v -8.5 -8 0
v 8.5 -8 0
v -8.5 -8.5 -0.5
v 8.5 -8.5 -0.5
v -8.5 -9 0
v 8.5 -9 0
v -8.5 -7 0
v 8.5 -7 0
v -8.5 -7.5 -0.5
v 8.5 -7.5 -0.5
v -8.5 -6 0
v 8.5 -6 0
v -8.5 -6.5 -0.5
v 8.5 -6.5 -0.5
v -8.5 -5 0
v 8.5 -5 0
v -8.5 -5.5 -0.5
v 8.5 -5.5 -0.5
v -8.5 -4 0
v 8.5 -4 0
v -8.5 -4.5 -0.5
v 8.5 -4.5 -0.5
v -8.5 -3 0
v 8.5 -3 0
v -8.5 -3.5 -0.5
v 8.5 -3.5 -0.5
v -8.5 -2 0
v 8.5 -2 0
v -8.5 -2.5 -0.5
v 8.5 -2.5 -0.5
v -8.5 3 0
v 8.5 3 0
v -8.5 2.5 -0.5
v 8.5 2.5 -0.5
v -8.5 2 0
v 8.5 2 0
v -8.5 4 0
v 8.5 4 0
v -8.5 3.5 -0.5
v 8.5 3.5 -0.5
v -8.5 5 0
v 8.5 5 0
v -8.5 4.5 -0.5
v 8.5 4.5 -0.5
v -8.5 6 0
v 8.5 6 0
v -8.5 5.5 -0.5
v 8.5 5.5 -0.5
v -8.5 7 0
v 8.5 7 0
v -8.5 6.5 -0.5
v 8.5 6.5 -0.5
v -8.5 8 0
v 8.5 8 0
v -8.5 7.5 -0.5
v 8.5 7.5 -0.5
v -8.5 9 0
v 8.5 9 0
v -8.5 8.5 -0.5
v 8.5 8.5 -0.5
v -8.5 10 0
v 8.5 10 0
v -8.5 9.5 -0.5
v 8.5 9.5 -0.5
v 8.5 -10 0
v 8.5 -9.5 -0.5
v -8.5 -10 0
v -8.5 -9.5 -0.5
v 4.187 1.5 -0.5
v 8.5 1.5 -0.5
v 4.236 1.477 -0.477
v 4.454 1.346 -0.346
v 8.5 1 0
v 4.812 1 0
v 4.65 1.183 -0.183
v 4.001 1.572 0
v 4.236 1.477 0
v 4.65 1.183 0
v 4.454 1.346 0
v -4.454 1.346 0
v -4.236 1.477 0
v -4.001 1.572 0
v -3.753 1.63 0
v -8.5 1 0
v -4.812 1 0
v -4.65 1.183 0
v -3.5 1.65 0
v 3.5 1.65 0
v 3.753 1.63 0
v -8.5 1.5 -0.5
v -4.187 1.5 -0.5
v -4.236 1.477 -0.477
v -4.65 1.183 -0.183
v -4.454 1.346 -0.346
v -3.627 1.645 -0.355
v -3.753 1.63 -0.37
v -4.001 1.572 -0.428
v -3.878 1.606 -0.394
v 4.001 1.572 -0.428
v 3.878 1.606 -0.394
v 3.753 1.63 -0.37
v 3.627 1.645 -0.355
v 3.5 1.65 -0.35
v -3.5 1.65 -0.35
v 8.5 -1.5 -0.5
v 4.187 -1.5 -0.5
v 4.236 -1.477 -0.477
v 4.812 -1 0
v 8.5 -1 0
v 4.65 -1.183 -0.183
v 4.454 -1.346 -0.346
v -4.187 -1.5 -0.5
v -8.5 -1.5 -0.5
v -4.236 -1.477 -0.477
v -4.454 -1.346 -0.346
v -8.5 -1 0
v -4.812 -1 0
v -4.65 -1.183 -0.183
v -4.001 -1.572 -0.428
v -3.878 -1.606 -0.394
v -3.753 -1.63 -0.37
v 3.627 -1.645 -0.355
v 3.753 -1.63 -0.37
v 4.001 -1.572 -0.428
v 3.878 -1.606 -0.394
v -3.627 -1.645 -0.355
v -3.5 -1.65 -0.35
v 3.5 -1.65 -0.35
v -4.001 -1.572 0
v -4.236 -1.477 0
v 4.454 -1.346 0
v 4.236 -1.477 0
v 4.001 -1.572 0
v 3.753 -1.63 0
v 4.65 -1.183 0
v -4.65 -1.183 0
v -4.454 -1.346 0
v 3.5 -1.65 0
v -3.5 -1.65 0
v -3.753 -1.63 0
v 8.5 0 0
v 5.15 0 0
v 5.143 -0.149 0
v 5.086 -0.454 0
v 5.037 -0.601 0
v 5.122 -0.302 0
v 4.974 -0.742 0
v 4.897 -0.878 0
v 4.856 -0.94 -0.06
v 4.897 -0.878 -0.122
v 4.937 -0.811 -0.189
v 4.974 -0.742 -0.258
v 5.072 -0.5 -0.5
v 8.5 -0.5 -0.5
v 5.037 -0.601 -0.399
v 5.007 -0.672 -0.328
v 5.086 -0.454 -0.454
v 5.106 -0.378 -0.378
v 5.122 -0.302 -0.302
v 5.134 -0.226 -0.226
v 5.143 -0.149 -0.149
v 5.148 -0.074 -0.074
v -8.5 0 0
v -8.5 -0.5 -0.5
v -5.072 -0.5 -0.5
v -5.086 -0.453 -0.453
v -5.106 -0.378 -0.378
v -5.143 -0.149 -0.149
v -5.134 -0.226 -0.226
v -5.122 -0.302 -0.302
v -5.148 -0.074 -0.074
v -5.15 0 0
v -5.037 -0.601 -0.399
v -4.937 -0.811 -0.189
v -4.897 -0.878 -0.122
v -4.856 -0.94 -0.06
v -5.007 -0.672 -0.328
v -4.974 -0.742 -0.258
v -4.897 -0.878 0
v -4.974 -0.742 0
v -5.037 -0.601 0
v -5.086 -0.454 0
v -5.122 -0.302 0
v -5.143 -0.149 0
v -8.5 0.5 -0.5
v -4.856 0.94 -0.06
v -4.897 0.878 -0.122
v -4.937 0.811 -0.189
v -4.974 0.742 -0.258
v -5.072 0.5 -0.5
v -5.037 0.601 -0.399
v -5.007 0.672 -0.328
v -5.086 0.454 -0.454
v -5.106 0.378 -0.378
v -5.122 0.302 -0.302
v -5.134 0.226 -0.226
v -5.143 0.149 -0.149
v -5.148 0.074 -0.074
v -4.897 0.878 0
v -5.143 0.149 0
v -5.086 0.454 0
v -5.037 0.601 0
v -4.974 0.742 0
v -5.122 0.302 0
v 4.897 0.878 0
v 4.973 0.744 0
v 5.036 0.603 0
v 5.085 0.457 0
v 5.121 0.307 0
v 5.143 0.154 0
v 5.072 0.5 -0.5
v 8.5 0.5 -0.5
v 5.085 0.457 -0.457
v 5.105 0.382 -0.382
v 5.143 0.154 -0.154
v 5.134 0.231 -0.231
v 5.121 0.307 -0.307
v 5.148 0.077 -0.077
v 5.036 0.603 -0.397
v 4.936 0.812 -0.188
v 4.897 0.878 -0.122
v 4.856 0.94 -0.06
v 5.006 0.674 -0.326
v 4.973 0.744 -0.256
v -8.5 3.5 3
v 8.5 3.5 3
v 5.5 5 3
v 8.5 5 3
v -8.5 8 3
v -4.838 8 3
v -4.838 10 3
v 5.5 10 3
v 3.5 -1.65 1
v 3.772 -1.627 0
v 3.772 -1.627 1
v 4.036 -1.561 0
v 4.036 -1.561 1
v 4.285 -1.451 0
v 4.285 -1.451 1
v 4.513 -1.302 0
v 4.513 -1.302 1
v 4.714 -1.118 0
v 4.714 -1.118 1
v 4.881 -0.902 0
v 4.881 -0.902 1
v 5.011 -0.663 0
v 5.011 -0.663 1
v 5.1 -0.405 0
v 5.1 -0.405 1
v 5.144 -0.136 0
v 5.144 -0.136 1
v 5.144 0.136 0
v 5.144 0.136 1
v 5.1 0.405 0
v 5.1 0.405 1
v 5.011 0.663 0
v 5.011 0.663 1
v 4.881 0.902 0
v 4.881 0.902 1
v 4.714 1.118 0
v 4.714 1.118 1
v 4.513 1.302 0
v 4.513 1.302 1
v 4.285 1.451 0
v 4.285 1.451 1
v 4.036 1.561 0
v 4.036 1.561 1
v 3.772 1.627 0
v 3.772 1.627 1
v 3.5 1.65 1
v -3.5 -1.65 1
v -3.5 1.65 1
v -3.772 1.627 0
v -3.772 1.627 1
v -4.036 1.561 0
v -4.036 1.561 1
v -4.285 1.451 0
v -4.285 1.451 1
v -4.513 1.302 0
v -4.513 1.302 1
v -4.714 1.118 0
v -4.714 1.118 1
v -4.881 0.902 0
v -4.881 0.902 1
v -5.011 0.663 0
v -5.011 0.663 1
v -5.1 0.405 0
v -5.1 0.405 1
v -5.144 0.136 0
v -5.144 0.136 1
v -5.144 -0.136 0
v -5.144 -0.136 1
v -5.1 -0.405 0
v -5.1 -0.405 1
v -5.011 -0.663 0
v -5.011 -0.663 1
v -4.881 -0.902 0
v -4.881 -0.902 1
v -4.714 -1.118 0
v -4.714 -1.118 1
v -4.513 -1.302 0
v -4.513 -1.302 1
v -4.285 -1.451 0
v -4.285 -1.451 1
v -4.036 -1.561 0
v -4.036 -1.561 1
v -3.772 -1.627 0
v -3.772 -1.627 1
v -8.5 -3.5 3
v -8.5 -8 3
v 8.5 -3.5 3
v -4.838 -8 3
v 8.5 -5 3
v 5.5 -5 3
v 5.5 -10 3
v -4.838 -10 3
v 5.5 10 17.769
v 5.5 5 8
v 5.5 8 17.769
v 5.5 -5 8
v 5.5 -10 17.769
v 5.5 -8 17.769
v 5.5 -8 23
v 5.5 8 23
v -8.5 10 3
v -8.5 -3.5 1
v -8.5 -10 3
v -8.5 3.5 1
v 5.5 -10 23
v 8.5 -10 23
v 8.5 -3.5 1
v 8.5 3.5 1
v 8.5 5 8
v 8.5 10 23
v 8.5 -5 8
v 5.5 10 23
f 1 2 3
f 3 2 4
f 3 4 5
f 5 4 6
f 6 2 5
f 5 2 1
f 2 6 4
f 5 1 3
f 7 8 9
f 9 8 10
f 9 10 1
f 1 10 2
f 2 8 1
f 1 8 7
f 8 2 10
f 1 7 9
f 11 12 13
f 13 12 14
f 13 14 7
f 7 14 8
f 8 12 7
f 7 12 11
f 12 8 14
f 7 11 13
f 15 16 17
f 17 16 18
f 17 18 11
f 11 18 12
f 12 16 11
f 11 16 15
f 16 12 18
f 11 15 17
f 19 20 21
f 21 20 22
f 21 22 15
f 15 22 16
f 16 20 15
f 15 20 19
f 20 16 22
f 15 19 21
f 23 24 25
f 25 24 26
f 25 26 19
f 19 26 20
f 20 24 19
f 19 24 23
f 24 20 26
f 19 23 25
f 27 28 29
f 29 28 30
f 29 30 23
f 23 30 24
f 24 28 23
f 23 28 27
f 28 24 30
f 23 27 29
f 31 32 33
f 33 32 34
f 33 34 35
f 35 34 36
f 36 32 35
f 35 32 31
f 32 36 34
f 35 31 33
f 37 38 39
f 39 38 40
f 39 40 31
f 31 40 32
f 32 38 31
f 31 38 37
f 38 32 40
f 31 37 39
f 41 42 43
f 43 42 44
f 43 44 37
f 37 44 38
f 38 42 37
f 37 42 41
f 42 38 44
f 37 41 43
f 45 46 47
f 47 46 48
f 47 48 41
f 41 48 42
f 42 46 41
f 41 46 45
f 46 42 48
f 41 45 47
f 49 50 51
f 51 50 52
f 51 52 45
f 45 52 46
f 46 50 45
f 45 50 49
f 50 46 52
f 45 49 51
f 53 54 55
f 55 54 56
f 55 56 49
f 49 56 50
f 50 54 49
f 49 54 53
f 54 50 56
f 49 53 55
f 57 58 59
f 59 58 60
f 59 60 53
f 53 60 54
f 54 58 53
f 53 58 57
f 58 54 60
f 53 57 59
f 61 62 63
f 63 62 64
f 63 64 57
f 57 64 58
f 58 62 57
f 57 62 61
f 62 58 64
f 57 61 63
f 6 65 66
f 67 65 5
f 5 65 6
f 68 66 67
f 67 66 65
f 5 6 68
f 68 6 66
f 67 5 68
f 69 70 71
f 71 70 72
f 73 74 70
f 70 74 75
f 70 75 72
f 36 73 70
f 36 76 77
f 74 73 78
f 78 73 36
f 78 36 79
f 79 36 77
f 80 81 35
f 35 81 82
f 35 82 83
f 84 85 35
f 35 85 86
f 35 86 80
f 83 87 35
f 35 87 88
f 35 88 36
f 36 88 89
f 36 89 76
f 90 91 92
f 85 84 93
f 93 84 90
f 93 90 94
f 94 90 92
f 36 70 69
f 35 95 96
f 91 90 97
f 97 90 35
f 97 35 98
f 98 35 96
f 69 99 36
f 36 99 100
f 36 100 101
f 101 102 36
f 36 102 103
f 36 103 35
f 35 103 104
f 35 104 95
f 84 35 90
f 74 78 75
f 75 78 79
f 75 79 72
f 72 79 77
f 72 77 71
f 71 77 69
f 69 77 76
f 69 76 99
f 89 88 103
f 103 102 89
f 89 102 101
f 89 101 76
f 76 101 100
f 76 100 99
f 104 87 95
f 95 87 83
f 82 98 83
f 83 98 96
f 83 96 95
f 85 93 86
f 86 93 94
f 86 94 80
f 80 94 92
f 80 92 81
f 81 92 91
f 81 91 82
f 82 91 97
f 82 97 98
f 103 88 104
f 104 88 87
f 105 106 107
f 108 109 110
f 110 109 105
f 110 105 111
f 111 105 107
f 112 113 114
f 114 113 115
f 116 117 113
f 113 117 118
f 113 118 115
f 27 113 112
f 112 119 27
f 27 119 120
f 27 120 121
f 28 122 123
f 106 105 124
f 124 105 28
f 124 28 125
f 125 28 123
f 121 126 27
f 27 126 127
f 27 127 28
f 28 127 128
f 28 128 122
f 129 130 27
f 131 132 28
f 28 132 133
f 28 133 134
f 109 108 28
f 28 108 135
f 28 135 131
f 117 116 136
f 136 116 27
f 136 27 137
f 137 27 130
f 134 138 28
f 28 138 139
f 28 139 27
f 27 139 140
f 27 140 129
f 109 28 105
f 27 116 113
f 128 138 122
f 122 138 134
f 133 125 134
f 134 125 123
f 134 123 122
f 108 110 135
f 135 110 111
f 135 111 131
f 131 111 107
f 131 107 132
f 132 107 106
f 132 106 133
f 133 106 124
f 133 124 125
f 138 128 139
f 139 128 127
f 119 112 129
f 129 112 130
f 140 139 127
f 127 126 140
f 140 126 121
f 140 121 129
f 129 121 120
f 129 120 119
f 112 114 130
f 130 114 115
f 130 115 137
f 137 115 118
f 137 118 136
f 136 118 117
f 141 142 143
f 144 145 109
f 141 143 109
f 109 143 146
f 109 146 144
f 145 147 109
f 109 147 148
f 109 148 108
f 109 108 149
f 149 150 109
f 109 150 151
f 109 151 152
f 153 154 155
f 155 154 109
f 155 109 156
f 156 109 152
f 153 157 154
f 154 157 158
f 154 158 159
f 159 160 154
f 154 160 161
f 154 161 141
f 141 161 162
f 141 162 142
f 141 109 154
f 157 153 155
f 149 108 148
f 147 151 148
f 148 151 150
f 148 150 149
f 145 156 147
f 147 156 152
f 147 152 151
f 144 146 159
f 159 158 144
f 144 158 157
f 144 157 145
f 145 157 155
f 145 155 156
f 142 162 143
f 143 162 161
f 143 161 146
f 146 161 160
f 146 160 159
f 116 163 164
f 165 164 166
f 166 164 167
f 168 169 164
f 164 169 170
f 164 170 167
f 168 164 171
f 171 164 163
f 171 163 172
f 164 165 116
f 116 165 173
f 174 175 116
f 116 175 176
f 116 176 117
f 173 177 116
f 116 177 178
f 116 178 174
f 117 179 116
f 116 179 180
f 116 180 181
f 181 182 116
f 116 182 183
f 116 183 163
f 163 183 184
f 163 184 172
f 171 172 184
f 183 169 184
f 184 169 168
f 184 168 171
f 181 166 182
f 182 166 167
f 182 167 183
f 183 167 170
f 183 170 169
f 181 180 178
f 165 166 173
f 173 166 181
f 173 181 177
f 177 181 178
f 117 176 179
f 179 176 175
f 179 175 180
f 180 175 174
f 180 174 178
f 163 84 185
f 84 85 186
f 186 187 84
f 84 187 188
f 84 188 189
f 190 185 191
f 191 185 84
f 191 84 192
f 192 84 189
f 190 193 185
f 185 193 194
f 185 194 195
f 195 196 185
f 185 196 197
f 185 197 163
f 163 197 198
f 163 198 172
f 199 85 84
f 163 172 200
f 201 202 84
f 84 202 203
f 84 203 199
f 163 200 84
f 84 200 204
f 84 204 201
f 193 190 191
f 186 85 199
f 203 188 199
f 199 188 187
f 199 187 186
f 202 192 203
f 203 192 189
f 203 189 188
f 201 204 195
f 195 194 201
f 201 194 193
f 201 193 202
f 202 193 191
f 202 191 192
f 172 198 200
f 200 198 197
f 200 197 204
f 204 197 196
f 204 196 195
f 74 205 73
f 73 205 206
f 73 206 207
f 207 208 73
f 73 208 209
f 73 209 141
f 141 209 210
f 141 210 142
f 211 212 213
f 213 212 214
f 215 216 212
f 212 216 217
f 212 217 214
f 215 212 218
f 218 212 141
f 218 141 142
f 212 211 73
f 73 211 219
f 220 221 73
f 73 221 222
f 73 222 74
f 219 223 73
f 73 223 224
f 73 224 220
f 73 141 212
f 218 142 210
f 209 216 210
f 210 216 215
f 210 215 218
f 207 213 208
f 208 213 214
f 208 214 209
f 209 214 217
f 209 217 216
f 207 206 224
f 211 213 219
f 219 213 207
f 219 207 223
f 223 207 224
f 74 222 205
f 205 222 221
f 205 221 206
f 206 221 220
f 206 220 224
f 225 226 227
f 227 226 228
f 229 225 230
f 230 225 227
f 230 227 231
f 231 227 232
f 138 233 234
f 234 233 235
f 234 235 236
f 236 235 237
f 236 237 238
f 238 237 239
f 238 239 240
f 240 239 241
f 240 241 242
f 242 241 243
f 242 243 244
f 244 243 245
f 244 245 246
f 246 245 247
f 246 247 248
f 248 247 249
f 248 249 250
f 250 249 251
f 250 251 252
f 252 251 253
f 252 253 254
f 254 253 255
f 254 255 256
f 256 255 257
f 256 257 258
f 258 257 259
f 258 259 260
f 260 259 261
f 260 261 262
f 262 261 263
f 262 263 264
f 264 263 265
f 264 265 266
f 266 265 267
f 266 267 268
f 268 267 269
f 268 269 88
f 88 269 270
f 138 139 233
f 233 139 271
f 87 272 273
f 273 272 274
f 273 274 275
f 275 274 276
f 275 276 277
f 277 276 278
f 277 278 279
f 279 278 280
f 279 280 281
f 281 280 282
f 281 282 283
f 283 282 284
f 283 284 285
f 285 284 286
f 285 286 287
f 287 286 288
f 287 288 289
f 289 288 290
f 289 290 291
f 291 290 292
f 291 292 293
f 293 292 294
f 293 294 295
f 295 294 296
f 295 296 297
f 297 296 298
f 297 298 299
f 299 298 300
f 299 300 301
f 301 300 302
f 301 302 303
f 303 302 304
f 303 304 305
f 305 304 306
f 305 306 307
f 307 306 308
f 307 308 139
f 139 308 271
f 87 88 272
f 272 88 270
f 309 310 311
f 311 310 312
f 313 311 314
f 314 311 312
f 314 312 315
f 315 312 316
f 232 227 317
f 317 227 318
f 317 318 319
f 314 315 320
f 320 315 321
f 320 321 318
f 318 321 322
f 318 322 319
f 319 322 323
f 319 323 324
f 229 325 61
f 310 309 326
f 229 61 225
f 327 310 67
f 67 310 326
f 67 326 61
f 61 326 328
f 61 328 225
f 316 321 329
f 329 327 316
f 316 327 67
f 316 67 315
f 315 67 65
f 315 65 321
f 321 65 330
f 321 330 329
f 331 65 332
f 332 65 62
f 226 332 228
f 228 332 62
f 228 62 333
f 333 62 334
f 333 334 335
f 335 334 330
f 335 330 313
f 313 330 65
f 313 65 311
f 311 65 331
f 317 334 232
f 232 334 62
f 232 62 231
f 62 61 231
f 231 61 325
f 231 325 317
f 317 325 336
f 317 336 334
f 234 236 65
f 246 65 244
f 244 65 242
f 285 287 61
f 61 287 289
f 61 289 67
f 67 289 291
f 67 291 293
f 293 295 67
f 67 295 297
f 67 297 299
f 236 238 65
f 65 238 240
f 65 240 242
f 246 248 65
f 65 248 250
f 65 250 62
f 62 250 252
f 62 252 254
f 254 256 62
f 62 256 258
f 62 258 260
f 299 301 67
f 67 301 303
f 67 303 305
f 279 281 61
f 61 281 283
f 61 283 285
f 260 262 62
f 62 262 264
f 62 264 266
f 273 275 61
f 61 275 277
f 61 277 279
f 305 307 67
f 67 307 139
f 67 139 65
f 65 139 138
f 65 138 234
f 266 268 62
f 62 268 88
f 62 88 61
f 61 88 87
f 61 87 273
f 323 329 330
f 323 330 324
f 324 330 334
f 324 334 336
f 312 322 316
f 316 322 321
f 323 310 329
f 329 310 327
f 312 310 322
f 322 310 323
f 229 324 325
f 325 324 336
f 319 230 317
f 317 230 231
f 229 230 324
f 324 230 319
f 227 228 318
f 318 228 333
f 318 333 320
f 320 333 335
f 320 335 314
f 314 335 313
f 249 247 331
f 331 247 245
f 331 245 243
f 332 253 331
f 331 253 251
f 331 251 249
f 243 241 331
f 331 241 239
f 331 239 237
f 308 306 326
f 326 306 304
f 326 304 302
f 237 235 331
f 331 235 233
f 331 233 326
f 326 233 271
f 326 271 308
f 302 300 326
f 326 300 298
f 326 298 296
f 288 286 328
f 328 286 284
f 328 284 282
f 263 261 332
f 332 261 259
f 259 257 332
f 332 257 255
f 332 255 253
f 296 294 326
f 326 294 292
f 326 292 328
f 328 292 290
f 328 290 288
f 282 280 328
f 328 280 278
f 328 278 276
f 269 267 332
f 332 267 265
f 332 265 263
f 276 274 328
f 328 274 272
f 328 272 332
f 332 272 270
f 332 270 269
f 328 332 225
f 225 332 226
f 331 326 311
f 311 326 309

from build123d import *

# Parameters (mm, degrees)
SKETCH1_W              = 17
SKETCH1_H              = 20
BOSS_EXTRUDE1_DEPTH    = 3
SKETCH2_W              = 3
SKETCH2_H              = 20
BOSS_EXTRUDE2_DEPTH    = 20
BOSS_EXTRUDE3_DEPTH    = 2
BOSS_EXTRUDE4_START    = -20
BOSS_EXTRUDE4_DEPTH    = 2
SKETCH4_W              = 5
SKETCH4_H              = 10
CUT_EXTRUDE1_DEPTH     = 12
BOSS_EXTRUDE9_DEPTH    = 17
BOSS_EXTRUDE9_2_DEPTH  = 17
BOSS_EXTRUDE9_3_DEPTH  = 17
BOSS_EXTRUDE9_4_DEPTH  = 17
BOSS_EXTRUDE9_5_DEPTH  = 17
BOSS_EXTRUDE9_6_DEPTH  = 17
BOSS_EXTRUDE9_7_DEPTH  = 17
BOSS_EXTRUDE9_8_DEPTH  = 17
BOSS_EXTRUDE9_9_DEPTH  = 17
BOSS_EXTRUDE9_10_DEPTH = 17
BOSS_EXTRUDE9_11_DEPTH = 17
BOSS_EXTRUDE9_12_DEPTH = 17
BOSS_EXTRUDE9_13_DEPTH = 17
BOSS_EXTRUDE9_14_DEPTH = 17
BOSS_EXTRUDE9_15_DEPTH = 17
BOSS_EXTRUDE9_16_DEPTH = 17
BOSS_EXTRUDE9_17_DEPTH = 17
BOSS_EXTRUDE9_18_DEPTH = 17
BOSS_EXTRUDE9_19_DEPTH = 17
BOSS_EXTRUDE9_20_DEPTH = 17
CUT_EXTRUDE2_DEPTH     = 10
SKETCH8_W              = 17
SKETCH8_H              = 7
CUT_EXTRUDE3_DEPTH     = 2


with BuildPart() as part:
    # Sketch1 → Boss-Extrude1 (new body)
    with BuildSketch(Plane.XY):
        Rectangle(SKETCH1_W, SKETCH1_H)
    extrude(amount=BOSS_EXTRUDE1_DEPTH)

    # Sketch2 → Boss-Extrude2 (add)
    with BuildSketch(Plane.XY.offset(3)):
        with Locations((7, 0)):
            Rectangle(SKETCH2_W, SKETCH2_H)
    extrude(amount=BOSS_EXTRUDE2_DEPTH)

    # Sketch3 → Boss-Extrude3 (add)
    with BuildSketch(Plane.XZ.offset(10)):
        Polygon((5.5, 23), (-8.5, 3), (-4.838033315, 3), (5.5, 17.768619022), align=None)
    extrude(amount=-BOSS_EXTRUDE3_DEPTH)

    # Sketch3<2> → Boss-Extrude4 (add)
    with BuildSketch(Plane.XZ.offset(10).offset(BOSS_EXTRUDE4_START)):
        Polygon((5.5, 23), (-8.5, 3), (-4.838033315, 3), (5.5, 17.768619022), align=None)
    extrude(amount=BOSS_EXTRUDE4_DEPTH)

    # Sketch4 → Cut-Extrude1 (cut)
    with BuildSketch(Plane.ZY.offset(-5.5)):
        with Locations((5.5, 0)):
            Rectangle(SKETCH4_W, SKETCH4_H)
    extrude(amount=-CUT_EXTRUDE1_DEPTH, mode=Mode.SUBTRACT)


with BuildPart() as body_2:
    # Sketch5 → Boss-Extrude9 (new body)
    with BuildSketch(Plane(origin=(8.5, 0, 0), x_dir=(0, 0, -1), z_dir=(1, 0, 0))):
        Polygon((0.5, -9.5), (0, -9), (0, -10), align=None)
    extrude(amount=-BOSS_EXTRUDE9_DEPTH)


with BuildPart() as body_3:
    # Sketch5 → Boss-Extrude9 2 (new body)
    with BuildSketch(Plane(origin=(8.5, 0, 0), x_dir=(0, 0, -1), z_dir=(1, 0, 0))):
        Polygon((0.5, -0.5), (0, 0), (0, -1), align=None)
    extrude(amount=-BOSS_EXTRUDE9_2_DEPTH)


with BuildPart() as body_4:
    # Sketch5 → Boss-Extrude9 3 (new body)
    with BuildSketch(Plane(origin=(8.5, 0, 0), x_dir=(0, 0, -1), z_dir=(1, 0, 0))):
        Polygon((0.5, 0.5), (0, 1), (0, 0), align=None)
    extrude(amount=-BOSS_EXTRUDE9_3_DEPTH)


with BuildPart() as body_5:
    # Sketch5 → Boss-Extrude9 4 (new body)
    with BuildSketch(Plane(origin=(8.5, 0, 0), x_dir=(0, 0, -1), z_dir=(1, 0, 0))):
        Polygon((0.5, 1.5), (0, 2), (0, 1), align=None)
    extrude(amount=-BOSS_EXTRUDE9_4_DEPTH)


with BuildPart() as body_6:
    # Sketch5 → Boss-Extrude9 5 (new body)
    with BuildSketch(Plane(origin=(8.5, 0, 0), x_dir=(0, 0, -1), z_dir=(1, 0, 0))):
        Polygon((0, -8), (0, -9), (0.5, -8.5), align=None)
    extrude(amount=-BOSS_EXTRUDE9_5_DEPTH)


with BuildPart() as body_7:
    # Sketch5 → Boss-Extrude9 6 (new body)
    with BuildSketch(Plane(origin=(8.5, 0, 0), x_dir=(0, 0, -1), z_dir=(1, 0, 0))):
        Polygon((0, -7), (0, -8), (0.5, -7.5), align=None)
    extrude(amount=-BOSS_EXTRUDE9_6_DEPTH)


with BuildPart() as body_8:
    # Sketch5 → Boss-Extrude9 7 (new body)
    with BuildSketch(Plane(origin=(8.5, 0, 0), x_dir=(0, 0, -1), z_dir=(1, 0, 0))):
        Polygon((0, -6), (0, -7), (0.5, -6.5), align=None)
    extrude(amount=-BOSS_EXTRUDE9_7_DEPTH)


with BuildPart() as body_9:
    # Sketch5 → Boss-Extrude9 8 (new body)
    with BuildSketch(Plane(origin=(8.5, 0, 0), x_dir=(0, 0, -1), z_dir=(1, 0, 0))):
        Polygon((0, -5), (0, -6), (0.5, -5.5), align=None)
    extrude(amount=-BOSS_EXTRUDE9_8_DEPTH)


with BuildPart() as body_10:
    # Sketch5 → Boss-Extrude9 9 (new body)
    with BuildSketch(Plane(origin=(8.5, 0, 0), x_dir=(0, 0, -1), z_dir=(1, 0, 0))):
        Polygon((0, -4), (0, -5), (0.5, -4.5), align=None)
    extrude(amount=-BOSS_EXTRUDE9_9_DEPTH)


with BuildPart() as body_11:
    # Sketch5 → Boss-Extrude9 10 (new body)
    with BuildSketch(Plane(origin=(8.5, 0, 0), x_dir=(0, 0, -1), z_dir=(1, 0, 0))):
        Polygon((0, -3), (0, -4), (0.5, -3.5), align=None)
    extrude(amount=-BOSS_EXTRUDE9_10_DEPTH)


with BuildPart() as body_12:
    # Sketch5 → Boss-Extrude9 11 (new body)
    with BuildSketch(Plane(origin=(8.5, 0, 0), x_dir=(0, 0, -1), z_dir=(1, 0, 0))):
        Polygon((0, -2), (0, -3), (0.5, -2.5), align=None)
    extrude(amount=-BOSS_EXTRUDE9_11_DEPTH)


with BuildPart() as body_13:
    # Sketch5 → Boss-Extrude9 12 (new body)
    with BuildSketch(Plane(origin=(8.5, 0, 0), x_dir=(0, 0, -1), z_dir=(1, 0, 0))):
        Polygon((0, -1), (0, -2), (0.5, -1.5), align=None)
    extrude(amount=-BOSS_EXTRUDE9_12_DEPTH)


with BuildPart() as body_14:
    # Sketch5 → Boss-Extrude9 13 (new body)
    with BuildSketch(Plane(origin=(8.5, 0, 0), x_dir=(0, 0, -1), z_dir=(1, 0, 0))):
        Polygon((0, 3), (0, 2), (0.5, 2.5), align=None)
    extrude(amount=-BOSS_EXTRUDE9_13_DEPTH)


with BuildPart() as body_15:
    # Sketch5 → Boss-Extrude9 14 (new body)
    with BuildSketch(Plane(origin=(8.5, 0, 0), x_dir=(0, 0, -1), z_dir=(1, 0, 0))):
        Polygon((0, 4), (0, 3), (0.5, 3.5), align=None)
    extrude(amount=-BOSS_EXTRUDE9_14_DEPTH)


with BuildPart() as body_16:
    # Sketch5 → Boss-Extrude9 15 (new body)
    with BuildSketch(Plane(origin=(8.5, 0, 0), x_dir=(0, 0, -1), z_dir=(1, 0, 0))):
        Polygon((0, 5), (0, 4), (0.5, 4.5), align=None)
    extrude(amount=-BOSS_EXTRUDE9_15_DEPTH)


with BuildPart() as body_17:
    # Sketch5 → Boss-Extrude9 16 (new body)
    with BuildSketch(Plane(origin=(8.5, 0, 0), x_dir=(0, 0, -1), z_dir=(1, 0, 0))):
        Polygon((0, 6), (0, 5), (0.5, 5.5), align=None)
    extrude(amount=-BOSS_EXTRUDE9_16_DEPTH)


with BuildPart() as body_18:
    # Sketch5 → Boss-Extrude9 17 (new body)
    with BuildSketch(Plane(origin=(8.5, 0, 0), x_dir=(0, 0, -1), z_dir=(1, 0, 0))):
        Polygon((0, 7), (0, 6), (0.5, 6.5), align=None)
    extrude(amount=-BOSS_EXTRUDE9_17_DEPTH)


with BuildPart() as body_19:
    # Sketch5 → Boss-Extrude9 18 (new body)
    with BuildSketch(Plane(origin=(8.5, 0, 0), x_dir=(0, 0, -1), z_dir=(1, 0, 0))):
        Polygon((0, 8), (0, 7), (0.5, 7.5), align=None)
    extrude(amount=-BOSS_EXTRUDE9_18_DEPTH)


with BuildPart() as body_20:
    # Sketch5 → Boss-Extrude9 19 (new body)
    with BuildSketch(Plane(origin=(8.5, 0, 0), x_dir=(0, 0, -1), z_dir=(1, 0, 0))):
        Polygon((0, 9), (0, 8), (0.5, 8.5), align=None)
    extrude(amount=-BOSS_EXTRUDE9_19_DEPTH)


with BuildPart() as body_21:
    # Sketch5 → Boss-Extrude9 20 (new body)
    with BuildSketch(Plane(origin=(8.5, 0, 0), x_dir=(0, 0, -1), z_dir=(1, 0, 0))):
        Polygon((0, 10), (0, 9), (0.5, 9.5), align=None)
    extrude(amount=-BOSS_EXTRUDE9_20_DEPTH)


with BuildPart() as cut_extrude2_tool:
    # Sketch6 → Cut-Extrude2 (new body)
    with BuildSketch(Plane.XY.offset(3)):
        with BuildLine():
            Line((3.5, -1.65), (-3.5, -1.65))
            ThreePointArc((-3.5, -1.65), (-5.15, 0), (-3.5, 1.65))
            Line((-3.5, 1.65), (3.5, 1.65))
            ThreePointArc((3.5, 1.65), (5.15, 0), (3.5, -1.65))
        make_face()
    extrude(amount=-CUT_EXTRUDE2_DEPTH)


with BuildPart() as part_1:
    add(part.part)

    # Cut-Extrude2: cut by cut_extrude2_tool
    add(cut_extrude2_tool.part, mode=Mode.SUBTRACT)

    # Sketch8 → Cut-Extrude3 (cut)
    with BuildSketch(Plane.XY.offset(3)):
        Rectangle(SKETCH8_W, SKETCH8_H)
    extrude(amount=-CUT_EXTRUDE3_DEPTH, mode=Mode.SUBTRACT)


with BuildPart() as body_3_1:
    add(body_3.part)

    # Cut-Extrude2: cut by cut_extrude2_tool
    add(cut_extrude2_tool.part, mode=Mode.SUBTRACT)


with BuildPart() as body_4_1:
    add(body_4.part)

    # Cut-Extrude2: cut by cut_extrude2_tool
    add(cut_extrude2_tool.part, mode=Mode.SUBTRACT)


with BuildPart() as body_5_1:
    add(body_5.part)

    # Cut-Extrude2: cut by cut_extrude2_tool
    add(cut_extrude2_tool.part, mode=Mode.SUBTRACT)


with BuildPart() as body_13_1:
    add(body_13.part)

    # Cut-Extrude2: cut by cut_extrude2_tool
    add(cut_extrude2_tool.part, mode=Mode.SUBTRACT)


solid = Compound([body_2.part, body_6.part, body_7.part, body_8.part, body_9.part, body_10.part, body_11.part, body_12.part, body_14.part, body_15.part, body_16.part, body_17.part, body_18.part, body_19.part, body_20.part, body_21.part, part_1.part, body_3_1.part, body_4_1.part, body_5_1.part, body_13_1.part])
